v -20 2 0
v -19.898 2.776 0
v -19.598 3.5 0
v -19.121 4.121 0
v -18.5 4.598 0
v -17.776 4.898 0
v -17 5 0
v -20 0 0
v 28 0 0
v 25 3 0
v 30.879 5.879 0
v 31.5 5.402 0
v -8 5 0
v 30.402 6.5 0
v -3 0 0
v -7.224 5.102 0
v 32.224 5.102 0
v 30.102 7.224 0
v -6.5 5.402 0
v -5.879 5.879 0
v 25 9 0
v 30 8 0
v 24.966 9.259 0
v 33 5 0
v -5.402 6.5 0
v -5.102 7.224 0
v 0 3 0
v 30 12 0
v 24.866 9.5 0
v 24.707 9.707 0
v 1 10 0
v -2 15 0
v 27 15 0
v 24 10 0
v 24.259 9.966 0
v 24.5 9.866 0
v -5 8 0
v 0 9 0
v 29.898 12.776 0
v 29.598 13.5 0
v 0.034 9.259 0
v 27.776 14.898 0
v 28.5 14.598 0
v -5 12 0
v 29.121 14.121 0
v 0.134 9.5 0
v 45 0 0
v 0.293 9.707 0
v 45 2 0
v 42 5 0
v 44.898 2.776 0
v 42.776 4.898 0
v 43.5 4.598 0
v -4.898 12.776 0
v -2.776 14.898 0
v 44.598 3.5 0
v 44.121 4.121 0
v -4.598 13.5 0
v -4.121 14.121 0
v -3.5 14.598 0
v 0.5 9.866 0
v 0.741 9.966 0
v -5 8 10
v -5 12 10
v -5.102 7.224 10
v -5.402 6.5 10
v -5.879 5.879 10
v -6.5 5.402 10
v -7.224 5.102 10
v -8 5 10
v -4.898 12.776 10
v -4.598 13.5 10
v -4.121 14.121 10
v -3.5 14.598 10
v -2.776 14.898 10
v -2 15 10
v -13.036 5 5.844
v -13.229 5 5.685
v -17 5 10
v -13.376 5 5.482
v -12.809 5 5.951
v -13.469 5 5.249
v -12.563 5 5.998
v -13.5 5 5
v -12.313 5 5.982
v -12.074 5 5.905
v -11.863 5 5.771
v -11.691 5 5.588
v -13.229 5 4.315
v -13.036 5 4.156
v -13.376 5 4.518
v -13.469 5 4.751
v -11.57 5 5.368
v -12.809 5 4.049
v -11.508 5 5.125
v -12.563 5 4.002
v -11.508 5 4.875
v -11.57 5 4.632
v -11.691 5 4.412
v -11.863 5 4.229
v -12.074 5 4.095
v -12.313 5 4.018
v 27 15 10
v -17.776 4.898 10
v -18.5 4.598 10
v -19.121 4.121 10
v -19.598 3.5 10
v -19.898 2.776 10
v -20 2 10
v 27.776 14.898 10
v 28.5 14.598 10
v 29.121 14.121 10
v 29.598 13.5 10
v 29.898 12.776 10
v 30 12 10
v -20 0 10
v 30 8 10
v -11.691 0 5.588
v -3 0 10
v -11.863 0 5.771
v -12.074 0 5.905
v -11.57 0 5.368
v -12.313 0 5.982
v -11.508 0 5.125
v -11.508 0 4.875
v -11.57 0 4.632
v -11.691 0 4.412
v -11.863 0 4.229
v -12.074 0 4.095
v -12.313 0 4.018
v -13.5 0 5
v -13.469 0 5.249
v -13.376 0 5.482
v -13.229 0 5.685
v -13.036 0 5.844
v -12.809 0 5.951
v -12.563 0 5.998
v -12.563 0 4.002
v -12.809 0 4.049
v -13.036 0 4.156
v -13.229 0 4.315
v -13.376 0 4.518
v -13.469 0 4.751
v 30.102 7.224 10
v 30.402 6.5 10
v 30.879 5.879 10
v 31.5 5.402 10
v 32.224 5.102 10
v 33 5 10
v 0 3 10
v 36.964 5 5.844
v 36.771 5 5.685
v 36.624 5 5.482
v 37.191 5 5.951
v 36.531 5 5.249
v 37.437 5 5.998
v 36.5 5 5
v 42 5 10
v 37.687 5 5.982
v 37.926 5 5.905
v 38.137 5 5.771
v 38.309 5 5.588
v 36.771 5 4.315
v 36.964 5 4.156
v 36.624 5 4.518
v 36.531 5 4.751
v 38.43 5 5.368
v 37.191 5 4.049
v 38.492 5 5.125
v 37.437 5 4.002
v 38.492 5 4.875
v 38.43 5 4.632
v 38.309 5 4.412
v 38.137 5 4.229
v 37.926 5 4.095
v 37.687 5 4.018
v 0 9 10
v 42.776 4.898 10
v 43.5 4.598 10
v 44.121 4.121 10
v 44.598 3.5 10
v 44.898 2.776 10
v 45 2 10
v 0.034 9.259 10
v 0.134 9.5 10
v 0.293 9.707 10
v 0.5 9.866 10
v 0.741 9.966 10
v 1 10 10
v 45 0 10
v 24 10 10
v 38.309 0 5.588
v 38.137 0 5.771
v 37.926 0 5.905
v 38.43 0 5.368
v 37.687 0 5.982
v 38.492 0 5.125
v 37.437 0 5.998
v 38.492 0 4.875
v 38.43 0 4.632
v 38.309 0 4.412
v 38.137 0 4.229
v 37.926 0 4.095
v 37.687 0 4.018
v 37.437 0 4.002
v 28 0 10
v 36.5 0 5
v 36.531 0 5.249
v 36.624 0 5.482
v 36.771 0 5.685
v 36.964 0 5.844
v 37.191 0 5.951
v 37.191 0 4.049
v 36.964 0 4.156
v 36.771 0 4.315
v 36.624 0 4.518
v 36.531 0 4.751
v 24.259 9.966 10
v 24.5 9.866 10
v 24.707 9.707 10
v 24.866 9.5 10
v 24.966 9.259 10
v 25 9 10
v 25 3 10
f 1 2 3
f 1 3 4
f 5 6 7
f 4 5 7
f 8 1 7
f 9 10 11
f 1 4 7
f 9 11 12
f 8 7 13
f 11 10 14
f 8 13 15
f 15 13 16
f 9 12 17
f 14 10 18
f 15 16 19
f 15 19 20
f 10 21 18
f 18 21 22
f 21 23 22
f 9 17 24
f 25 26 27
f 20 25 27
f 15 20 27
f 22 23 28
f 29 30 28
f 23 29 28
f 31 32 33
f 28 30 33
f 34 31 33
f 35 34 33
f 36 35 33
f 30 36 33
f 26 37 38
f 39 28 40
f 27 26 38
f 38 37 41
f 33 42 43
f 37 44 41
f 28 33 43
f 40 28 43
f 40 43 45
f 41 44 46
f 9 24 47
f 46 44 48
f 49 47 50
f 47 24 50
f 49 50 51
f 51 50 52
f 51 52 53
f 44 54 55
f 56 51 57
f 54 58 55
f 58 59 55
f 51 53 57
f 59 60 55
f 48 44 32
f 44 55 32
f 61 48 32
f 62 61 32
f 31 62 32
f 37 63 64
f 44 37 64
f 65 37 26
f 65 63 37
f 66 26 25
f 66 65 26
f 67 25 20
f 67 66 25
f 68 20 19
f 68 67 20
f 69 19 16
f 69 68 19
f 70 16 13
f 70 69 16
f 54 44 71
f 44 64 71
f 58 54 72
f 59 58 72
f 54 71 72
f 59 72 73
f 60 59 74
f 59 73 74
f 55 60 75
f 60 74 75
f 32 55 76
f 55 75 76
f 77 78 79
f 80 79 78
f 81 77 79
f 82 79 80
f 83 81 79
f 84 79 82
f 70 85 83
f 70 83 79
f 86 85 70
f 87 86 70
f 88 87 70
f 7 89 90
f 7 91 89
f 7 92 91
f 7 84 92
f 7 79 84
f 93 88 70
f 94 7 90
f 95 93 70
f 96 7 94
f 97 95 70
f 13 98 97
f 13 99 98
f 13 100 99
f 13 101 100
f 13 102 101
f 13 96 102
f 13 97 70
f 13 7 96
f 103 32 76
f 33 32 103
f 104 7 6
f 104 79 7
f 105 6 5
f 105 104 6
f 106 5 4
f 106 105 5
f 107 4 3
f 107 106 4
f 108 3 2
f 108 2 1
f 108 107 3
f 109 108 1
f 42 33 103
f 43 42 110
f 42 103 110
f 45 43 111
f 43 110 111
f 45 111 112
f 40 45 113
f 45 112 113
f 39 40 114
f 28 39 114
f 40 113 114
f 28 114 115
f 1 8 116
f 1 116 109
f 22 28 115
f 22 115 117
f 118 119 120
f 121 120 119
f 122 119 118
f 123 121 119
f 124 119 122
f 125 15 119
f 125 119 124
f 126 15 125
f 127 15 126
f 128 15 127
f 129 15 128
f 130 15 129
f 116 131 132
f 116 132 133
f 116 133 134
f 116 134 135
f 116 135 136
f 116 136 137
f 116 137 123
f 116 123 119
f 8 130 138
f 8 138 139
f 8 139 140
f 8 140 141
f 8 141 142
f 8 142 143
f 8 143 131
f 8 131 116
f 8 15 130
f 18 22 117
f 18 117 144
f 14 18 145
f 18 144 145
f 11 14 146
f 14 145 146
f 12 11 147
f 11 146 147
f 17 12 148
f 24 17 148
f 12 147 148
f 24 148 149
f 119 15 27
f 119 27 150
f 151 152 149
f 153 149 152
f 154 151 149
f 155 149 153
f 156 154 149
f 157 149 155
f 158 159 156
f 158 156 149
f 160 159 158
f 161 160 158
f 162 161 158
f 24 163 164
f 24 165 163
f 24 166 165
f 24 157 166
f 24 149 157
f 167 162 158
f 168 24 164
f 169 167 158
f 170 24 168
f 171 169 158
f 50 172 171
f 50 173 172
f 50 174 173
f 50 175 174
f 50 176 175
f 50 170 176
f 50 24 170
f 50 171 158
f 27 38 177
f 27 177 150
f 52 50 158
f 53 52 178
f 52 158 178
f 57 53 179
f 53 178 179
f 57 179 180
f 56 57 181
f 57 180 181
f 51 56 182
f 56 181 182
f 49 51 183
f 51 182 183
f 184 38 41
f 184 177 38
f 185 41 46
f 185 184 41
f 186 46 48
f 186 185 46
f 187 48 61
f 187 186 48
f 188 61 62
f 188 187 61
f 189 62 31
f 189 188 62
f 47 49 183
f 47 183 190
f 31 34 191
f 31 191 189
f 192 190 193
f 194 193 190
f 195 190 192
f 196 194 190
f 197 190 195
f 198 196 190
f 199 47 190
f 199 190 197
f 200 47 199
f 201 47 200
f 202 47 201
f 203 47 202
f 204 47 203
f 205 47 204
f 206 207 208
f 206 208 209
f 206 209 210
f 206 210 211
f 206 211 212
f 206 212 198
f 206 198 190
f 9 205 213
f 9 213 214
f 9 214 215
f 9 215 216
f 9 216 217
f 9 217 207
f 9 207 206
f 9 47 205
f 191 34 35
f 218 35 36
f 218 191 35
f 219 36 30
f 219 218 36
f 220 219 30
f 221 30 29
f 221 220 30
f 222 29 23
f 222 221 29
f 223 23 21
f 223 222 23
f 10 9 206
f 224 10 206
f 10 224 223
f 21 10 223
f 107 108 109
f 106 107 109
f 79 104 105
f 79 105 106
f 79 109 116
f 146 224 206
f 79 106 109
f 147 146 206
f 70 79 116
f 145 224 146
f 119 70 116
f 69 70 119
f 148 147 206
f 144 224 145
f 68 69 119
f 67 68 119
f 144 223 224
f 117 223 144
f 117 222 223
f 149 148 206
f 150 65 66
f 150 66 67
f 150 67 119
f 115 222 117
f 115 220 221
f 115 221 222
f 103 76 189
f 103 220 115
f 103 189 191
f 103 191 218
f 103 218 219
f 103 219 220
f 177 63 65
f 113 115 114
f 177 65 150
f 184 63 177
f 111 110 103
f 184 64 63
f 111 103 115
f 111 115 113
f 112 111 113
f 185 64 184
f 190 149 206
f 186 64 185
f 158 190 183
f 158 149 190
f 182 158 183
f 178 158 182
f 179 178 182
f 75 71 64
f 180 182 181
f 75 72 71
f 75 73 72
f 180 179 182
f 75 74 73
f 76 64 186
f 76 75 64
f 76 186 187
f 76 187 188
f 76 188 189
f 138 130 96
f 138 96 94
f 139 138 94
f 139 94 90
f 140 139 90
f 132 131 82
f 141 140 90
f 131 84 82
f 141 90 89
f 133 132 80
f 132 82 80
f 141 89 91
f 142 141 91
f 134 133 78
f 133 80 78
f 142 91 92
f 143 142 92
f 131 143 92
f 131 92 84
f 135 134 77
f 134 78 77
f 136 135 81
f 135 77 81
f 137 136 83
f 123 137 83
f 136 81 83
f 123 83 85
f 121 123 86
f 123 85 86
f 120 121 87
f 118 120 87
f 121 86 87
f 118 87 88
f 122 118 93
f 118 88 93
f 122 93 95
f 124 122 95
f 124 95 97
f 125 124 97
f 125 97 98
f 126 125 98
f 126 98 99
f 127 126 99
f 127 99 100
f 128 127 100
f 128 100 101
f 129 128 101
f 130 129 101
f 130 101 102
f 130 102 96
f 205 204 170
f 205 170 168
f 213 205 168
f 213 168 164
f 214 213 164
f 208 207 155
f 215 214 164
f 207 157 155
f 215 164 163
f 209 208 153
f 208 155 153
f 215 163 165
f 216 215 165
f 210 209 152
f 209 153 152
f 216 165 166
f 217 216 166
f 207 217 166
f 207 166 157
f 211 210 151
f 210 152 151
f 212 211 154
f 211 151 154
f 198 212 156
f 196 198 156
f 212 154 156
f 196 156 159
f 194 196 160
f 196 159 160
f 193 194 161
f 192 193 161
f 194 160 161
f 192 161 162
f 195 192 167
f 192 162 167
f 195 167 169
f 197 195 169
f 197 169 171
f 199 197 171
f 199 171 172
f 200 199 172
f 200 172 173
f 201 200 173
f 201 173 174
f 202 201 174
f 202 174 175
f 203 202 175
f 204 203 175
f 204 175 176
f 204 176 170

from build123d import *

# Parameters (mm, degrees)
PAD_DEPTH       = 10
FILLET_R        = 3
FILLET001_R     = 1
FILLET002_R     = 1
CHAMFER_SIZE    = 3
CHAMFER001_SIZE = 3
FILLET003_R     = 3
FILLET004_R     = 3
FILLET005_R     = 3
FILLET006_R     = 3
FILLET007_R     = 3
SKETCH001_R     = 1
POCKET_DEPTH    = 5
SKETCH002_R     = 1
POCKET001_DEPTH = 5


with BuildPart() as part:
    # Sketch → Pad (new body)
    with BuildSketch(Plane.XY):
        Polygon((0, 0), (-20, 0), (-20, 5), (-5, 5), (-5, 15), (30, 15), (30, 5), (45, 5), (45, 0), (25, 0), (25, 10), (0, 10), align=None)
    extrude(amount=PAD_DEPTH)

    # Fillet
    fillet_edges = [part.edges().sort_by_distance(p)[0] for p in [
        (-5, 15, 5),
    ]]
    fillet(fillet_edges, radius=FILLET_R)

    # Fillet001
    fillet001_edges = [part.edges().sort_by_distance(p)[0] for p in [
        (0, 10, 5),
    ]]
    fillet(fillet001_edges, radius=FILLET001_R)

    # Fillet002
    fillet002_edges = [part.edges().sort_by_distance(p)[0] for p in [
        (25, 10, 5),
    ]]
    fillet(fillet002_edges, radius=FILLET002_R)

    # Chamfer
    chamfer_edges = [part.edges().sort_by_distance(p)[0] for p in [
        (25, 0, 5),
    ]]
    chamfer(chamfer_edges, length=CHAMFER_SIZE)

    # Chamfer001
    chamfer001_edges = [part.edges().sort_by_distance(p)[0] for p in [
        (0, 0, 5),
    ]]
    chamfer(chamfer001_edges, length=CHAMFER001_SIZE)

    # Fillet003
    fillet003_edges = [part.edges().sort_by_distance(p)[0] for p in [
        (30, 15, 5),
    ]]
    fillet(fillet003_edges, radius=FILLET003_R)

    # Fillet004
    fillet004_edges = [part.edges().sort_by_distance(p)[0] for p in [
        (45, 5, 5),
    ]]
    fillet(fillet004_edges, radius=FILLET004_R)

    # Fillet005
    fillet005_edges = [part.edges().sort_by_distance(p)[0] for p in [
        (-20, 5, 5),
    ]]
    fillet(fillet005_edges, radius=FILLET005_R)

    # Fillet006
    fillet006_edges = [part.edges().sort_by_distance(p)[0] for p in [
        (30, 5, 5),
    ]]
    fillet(fillet006_edges, radius=FILLET006_R)

    # Fillet007
    fillet007_edges = [part.edges().sort_by_distance(p)[0] for p in [
        (-5, 5, 5),
    ]]
    fillet(fillet007_edges, radius=FILLET007_R)

    # Sketch001 → Pocket (cut)
    with BuildSketch(Plane(origin=(0, 5, 0), x_dir=(-1, 0, 0), z_dir=(0, 1, 0))):
        with Locations((-37.5, 5)):
            Circle(SKETCH001_R)
    extrude(amount=-POCKET_DEPTH, mode=Mode.SUBTRACT)

    # Sketch002 → Pocket001 (cut)
    with BuildSketch(Plane(origin=(0, 5, 0), x_dir=(-1, 0, 0), z_dir=(0, 1, 0))):
        with Locations((12.5, 5)):
            Circle(SKETCH002_R)
    extrude(amount=-POCKET001_DEPTH, mode=Mode.SUBTRACT)


solid = part.part
